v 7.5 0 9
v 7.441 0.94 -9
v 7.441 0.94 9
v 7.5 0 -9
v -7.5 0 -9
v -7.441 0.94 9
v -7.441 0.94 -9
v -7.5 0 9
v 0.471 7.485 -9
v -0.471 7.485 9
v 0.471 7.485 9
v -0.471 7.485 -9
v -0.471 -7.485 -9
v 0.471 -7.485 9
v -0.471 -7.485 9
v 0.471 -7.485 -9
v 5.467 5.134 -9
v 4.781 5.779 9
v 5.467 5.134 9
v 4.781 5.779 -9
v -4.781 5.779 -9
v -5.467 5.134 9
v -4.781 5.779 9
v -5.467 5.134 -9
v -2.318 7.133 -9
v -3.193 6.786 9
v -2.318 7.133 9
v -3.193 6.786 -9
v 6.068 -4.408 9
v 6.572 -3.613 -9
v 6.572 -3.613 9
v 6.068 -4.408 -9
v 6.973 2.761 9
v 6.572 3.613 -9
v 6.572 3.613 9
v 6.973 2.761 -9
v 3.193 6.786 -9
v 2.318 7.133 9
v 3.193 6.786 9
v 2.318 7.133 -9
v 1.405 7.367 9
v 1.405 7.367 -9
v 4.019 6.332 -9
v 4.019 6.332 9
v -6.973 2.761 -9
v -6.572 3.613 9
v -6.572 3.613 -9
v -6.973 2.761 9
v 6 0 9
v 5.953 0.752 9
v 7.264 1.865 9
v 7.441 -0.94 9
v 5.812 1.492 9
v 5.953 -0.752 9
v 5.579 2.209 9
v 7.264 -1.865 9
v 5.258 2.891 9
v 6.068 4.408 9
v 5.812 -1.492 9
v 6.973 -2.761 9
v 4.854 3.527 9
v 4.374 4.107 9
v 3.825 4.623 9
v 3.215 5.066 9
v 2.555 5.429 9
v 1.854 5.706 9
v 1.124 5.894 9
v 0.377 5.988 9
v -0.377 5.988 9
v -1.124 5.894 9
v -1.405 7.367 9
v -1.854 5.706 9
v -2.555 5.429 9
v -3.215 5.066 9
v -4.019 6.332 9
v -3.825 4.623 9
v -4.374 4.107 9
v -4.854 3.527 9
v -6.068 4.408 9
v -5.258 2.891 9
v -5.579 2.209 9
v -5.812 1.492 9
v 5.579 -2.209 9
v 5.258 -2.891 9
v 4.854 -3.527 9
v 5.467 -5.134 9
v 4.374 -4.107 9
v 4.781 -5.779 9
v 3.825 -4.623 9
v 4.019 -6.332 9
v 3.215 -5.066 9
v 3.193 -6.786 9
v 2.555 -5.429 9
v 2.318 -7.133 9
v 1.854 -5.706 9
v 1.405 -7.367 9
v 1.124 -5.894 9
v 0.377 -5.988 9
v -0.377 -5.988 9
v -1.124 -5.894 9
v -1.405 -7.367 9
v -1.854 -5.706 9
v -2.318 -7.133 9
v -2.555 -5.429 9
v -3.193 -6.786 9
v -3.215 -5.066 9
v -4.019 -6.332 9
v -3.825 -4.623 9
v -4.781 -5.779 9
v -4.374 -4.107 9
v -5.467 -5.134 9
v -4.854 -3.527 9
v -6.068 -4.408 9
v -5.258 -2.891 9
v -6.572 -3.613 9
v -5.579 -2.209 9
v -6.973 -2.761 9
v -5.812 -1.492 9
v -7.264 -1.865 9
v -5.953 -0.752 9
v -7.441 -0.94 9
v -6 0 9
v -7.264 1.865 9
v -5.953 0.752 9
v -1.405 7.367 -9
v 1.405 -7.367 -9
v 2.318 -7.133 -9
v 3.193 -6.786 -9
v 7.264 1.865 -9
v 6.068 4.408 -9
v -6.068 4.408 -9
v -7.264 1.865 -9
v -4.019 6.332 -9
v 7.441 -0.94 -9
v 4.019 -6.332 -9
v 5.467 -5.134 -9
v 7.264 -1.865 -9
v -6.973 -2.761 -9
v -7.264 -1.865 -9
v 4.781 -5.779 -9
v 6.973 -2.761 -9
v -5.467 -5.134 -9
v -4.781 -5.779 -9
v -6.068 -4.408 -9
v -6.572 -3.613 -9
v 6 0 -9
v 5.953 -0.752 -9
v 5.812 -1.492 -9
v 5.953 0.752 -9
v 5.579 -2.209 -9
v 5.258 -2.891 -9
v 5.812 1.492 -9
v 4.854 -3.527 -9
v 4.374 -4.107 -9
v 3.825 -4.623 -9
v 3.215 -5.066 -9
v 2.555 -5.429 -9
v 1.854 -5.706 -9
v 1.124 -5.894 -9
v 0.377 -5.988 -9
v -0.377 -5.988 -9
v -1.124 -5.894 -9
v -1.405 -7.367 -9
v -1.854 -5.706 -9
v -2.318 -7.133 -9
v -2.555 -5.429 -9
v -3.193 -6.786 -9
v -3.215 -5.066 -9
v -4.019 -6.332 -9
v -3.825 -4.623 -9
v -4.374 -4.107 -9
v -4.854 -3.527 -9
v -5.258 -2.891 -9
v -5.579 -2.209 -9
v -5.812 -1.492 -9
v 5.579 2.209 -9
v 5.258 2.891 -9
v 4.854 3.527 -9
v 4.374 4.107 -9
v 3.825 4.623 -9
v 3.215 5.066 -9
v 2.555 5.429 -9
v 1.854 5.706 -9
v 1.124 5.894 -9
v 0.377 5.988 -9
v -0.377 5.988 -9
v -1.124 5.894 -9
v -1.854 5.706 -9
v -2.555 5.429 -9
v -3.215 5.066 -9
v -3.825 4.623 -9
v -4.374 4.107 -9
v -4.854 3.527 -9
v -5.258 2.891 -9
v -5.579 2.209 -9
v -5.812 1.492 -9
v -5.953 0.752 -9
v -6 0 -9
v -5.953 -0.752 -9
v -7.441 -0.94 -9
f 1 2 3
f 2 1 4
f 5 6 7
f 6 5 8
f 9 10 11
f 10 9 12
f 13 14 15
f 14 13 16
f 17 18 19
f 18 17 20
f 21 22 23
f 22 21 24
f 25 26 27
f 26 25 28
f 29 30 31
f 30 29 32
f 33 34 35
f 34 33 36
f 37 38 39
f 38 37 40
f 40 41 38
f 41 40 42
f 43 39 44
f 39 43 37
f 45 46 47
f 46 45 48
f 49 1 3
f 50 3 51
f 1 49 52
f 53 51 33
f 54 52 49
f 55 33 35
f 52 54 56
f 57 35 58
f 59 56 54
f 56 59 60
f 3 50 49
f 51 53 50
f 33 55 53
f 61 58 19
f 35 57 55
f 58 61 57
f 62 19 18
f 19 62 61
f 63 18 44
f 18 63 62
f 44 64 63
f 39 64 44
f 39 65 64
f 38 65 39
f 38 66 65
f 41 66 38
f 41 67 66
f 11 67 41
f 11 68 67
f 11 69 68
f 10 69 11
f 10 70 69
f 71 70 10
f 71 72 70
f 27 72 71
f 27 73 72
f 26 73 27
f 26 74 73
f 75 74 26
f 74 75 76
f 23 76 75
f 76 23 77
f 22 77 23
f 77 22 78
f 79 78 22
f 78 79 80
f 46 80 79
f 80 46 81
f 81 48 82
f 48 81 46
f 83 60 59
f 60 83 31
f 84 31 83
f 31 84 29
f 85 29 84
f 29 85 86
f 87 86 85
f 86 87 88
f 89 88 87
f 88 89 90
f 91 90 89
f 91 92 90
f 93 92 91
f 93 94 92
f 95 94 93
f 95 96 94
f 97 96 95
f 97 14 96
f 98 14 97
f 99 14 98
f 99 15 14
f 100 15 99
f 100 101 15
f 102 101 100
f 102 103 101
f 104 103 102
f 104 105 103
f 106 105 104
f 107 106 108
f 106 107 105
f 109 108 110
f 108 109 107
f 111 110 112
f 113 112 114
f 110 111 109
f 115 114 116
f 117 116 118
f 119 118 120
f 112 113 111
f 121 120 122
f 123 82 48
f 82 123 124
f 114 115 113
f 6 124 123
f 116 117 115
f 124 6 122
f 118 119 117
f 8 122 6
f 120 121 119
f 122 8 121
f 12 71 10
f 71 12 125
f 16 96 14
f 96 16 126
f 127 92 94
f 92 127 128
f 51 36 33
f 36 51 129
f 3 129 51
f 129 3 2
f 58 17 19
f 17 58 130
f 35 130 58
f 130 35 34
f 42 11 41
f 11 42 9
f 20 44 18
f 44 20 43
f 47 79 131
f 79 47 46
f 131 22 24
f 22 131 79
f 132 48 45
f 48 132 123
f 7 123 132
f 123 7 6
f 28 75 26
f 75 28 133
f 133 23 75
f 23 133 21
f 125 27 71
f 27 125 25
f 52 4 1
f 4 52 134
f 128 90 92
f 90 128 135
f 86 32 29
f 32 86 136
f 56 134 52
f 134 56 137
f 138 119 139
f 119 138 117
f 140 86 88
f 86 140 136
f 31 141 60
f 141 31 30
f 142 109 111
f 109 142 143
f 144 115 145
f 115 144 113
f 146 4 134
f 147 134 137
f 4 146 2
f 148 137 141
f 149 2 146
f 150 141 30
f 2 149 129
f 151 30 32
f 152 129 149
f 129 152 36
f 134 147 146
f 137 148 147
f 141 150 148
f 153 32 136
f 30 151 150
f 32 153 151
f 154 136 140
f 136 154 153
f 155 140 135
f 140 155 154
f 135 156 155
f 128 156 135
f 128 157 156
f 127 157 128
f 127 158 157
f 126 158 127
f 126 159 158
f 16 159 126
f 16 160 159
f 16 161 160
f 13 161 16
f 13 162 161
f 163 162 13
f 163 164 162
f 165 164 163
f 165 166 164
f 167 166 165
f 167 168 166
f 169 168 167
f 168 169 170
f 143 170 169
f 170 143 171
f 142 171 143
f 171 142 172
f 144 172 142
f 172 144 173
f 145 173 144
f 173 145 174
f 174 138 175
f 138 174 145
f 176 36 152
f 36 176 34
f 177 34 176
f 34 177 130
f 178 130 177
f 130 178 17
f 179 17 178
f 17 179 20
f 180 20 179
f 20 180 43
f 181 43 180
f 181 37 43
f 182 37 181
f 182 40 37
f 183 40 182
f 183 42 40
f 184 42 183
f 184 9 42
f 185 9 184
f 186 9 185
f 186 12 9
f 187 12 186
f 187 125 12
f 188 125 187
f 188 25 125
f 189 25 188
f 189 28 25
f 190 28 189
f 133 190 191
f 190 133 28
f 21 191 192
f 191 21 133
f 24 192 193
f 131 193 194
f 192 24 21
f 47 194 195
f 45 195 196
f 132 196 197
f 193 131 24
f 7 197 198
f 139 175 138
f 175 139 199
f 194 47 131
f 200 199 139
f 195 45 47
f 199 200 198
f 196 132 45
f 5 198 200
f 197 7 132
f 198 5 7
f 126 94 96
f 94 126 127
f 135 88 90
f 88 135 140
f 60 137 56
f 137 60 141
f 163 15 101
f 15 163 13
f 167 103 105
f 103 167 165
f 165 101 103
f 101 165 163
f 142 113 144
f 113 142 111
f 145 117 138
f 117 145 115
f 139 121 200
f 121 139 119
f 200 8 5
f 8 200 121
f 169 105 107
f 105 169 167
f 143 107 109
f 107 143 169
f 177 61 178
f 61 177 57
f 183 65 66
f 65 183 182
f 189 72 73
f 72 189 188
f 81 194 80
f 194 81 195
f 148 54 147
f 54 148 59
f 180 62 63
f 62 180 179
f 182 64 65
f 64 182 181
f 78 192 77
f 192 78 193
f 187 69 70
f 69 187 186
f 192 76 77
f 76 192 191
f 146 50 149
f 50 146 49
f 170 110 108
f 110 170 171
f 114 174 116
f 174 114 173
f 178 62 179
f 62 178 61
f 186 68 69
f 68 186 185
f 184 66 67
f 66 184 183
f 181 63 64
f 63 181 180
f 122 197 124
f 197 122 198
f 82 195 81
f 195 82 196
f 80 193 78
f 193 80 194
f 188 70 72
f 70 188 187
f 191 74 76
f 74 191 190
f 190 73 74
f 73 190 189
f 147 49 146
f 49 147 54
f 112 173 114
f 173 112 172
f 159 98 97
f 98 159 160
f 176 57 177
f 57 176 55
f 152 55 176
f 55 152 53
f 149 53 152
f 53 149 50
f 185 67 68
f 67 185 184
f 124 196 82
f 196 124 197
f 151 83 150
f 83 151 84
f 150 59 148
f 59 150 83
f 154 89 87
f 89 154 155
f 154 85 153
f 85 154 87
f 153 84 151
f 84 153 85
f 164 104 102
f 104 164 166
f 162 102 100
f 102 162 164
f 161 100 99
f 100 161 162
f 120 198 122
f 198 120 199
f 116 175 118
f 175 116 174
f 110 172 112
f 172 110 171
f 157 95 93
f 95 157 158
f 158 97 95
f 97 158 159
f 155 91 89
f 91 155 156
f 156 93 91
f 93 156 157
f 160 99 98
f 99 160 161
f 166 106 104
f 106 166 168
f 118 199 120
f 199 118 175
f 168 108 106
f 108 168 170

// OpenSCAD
$fn = 50;


difference() {
	union() {
		translate(v = [0, 0, -9.0000000000]) {
			cylinder(h = 18, r = 7.5000000000);
		}
	}
	union() {
		translate(v = [0, 0, -100.0000000000]) {
			cylinder(h = 200, r = 6);
		}
	}
}
